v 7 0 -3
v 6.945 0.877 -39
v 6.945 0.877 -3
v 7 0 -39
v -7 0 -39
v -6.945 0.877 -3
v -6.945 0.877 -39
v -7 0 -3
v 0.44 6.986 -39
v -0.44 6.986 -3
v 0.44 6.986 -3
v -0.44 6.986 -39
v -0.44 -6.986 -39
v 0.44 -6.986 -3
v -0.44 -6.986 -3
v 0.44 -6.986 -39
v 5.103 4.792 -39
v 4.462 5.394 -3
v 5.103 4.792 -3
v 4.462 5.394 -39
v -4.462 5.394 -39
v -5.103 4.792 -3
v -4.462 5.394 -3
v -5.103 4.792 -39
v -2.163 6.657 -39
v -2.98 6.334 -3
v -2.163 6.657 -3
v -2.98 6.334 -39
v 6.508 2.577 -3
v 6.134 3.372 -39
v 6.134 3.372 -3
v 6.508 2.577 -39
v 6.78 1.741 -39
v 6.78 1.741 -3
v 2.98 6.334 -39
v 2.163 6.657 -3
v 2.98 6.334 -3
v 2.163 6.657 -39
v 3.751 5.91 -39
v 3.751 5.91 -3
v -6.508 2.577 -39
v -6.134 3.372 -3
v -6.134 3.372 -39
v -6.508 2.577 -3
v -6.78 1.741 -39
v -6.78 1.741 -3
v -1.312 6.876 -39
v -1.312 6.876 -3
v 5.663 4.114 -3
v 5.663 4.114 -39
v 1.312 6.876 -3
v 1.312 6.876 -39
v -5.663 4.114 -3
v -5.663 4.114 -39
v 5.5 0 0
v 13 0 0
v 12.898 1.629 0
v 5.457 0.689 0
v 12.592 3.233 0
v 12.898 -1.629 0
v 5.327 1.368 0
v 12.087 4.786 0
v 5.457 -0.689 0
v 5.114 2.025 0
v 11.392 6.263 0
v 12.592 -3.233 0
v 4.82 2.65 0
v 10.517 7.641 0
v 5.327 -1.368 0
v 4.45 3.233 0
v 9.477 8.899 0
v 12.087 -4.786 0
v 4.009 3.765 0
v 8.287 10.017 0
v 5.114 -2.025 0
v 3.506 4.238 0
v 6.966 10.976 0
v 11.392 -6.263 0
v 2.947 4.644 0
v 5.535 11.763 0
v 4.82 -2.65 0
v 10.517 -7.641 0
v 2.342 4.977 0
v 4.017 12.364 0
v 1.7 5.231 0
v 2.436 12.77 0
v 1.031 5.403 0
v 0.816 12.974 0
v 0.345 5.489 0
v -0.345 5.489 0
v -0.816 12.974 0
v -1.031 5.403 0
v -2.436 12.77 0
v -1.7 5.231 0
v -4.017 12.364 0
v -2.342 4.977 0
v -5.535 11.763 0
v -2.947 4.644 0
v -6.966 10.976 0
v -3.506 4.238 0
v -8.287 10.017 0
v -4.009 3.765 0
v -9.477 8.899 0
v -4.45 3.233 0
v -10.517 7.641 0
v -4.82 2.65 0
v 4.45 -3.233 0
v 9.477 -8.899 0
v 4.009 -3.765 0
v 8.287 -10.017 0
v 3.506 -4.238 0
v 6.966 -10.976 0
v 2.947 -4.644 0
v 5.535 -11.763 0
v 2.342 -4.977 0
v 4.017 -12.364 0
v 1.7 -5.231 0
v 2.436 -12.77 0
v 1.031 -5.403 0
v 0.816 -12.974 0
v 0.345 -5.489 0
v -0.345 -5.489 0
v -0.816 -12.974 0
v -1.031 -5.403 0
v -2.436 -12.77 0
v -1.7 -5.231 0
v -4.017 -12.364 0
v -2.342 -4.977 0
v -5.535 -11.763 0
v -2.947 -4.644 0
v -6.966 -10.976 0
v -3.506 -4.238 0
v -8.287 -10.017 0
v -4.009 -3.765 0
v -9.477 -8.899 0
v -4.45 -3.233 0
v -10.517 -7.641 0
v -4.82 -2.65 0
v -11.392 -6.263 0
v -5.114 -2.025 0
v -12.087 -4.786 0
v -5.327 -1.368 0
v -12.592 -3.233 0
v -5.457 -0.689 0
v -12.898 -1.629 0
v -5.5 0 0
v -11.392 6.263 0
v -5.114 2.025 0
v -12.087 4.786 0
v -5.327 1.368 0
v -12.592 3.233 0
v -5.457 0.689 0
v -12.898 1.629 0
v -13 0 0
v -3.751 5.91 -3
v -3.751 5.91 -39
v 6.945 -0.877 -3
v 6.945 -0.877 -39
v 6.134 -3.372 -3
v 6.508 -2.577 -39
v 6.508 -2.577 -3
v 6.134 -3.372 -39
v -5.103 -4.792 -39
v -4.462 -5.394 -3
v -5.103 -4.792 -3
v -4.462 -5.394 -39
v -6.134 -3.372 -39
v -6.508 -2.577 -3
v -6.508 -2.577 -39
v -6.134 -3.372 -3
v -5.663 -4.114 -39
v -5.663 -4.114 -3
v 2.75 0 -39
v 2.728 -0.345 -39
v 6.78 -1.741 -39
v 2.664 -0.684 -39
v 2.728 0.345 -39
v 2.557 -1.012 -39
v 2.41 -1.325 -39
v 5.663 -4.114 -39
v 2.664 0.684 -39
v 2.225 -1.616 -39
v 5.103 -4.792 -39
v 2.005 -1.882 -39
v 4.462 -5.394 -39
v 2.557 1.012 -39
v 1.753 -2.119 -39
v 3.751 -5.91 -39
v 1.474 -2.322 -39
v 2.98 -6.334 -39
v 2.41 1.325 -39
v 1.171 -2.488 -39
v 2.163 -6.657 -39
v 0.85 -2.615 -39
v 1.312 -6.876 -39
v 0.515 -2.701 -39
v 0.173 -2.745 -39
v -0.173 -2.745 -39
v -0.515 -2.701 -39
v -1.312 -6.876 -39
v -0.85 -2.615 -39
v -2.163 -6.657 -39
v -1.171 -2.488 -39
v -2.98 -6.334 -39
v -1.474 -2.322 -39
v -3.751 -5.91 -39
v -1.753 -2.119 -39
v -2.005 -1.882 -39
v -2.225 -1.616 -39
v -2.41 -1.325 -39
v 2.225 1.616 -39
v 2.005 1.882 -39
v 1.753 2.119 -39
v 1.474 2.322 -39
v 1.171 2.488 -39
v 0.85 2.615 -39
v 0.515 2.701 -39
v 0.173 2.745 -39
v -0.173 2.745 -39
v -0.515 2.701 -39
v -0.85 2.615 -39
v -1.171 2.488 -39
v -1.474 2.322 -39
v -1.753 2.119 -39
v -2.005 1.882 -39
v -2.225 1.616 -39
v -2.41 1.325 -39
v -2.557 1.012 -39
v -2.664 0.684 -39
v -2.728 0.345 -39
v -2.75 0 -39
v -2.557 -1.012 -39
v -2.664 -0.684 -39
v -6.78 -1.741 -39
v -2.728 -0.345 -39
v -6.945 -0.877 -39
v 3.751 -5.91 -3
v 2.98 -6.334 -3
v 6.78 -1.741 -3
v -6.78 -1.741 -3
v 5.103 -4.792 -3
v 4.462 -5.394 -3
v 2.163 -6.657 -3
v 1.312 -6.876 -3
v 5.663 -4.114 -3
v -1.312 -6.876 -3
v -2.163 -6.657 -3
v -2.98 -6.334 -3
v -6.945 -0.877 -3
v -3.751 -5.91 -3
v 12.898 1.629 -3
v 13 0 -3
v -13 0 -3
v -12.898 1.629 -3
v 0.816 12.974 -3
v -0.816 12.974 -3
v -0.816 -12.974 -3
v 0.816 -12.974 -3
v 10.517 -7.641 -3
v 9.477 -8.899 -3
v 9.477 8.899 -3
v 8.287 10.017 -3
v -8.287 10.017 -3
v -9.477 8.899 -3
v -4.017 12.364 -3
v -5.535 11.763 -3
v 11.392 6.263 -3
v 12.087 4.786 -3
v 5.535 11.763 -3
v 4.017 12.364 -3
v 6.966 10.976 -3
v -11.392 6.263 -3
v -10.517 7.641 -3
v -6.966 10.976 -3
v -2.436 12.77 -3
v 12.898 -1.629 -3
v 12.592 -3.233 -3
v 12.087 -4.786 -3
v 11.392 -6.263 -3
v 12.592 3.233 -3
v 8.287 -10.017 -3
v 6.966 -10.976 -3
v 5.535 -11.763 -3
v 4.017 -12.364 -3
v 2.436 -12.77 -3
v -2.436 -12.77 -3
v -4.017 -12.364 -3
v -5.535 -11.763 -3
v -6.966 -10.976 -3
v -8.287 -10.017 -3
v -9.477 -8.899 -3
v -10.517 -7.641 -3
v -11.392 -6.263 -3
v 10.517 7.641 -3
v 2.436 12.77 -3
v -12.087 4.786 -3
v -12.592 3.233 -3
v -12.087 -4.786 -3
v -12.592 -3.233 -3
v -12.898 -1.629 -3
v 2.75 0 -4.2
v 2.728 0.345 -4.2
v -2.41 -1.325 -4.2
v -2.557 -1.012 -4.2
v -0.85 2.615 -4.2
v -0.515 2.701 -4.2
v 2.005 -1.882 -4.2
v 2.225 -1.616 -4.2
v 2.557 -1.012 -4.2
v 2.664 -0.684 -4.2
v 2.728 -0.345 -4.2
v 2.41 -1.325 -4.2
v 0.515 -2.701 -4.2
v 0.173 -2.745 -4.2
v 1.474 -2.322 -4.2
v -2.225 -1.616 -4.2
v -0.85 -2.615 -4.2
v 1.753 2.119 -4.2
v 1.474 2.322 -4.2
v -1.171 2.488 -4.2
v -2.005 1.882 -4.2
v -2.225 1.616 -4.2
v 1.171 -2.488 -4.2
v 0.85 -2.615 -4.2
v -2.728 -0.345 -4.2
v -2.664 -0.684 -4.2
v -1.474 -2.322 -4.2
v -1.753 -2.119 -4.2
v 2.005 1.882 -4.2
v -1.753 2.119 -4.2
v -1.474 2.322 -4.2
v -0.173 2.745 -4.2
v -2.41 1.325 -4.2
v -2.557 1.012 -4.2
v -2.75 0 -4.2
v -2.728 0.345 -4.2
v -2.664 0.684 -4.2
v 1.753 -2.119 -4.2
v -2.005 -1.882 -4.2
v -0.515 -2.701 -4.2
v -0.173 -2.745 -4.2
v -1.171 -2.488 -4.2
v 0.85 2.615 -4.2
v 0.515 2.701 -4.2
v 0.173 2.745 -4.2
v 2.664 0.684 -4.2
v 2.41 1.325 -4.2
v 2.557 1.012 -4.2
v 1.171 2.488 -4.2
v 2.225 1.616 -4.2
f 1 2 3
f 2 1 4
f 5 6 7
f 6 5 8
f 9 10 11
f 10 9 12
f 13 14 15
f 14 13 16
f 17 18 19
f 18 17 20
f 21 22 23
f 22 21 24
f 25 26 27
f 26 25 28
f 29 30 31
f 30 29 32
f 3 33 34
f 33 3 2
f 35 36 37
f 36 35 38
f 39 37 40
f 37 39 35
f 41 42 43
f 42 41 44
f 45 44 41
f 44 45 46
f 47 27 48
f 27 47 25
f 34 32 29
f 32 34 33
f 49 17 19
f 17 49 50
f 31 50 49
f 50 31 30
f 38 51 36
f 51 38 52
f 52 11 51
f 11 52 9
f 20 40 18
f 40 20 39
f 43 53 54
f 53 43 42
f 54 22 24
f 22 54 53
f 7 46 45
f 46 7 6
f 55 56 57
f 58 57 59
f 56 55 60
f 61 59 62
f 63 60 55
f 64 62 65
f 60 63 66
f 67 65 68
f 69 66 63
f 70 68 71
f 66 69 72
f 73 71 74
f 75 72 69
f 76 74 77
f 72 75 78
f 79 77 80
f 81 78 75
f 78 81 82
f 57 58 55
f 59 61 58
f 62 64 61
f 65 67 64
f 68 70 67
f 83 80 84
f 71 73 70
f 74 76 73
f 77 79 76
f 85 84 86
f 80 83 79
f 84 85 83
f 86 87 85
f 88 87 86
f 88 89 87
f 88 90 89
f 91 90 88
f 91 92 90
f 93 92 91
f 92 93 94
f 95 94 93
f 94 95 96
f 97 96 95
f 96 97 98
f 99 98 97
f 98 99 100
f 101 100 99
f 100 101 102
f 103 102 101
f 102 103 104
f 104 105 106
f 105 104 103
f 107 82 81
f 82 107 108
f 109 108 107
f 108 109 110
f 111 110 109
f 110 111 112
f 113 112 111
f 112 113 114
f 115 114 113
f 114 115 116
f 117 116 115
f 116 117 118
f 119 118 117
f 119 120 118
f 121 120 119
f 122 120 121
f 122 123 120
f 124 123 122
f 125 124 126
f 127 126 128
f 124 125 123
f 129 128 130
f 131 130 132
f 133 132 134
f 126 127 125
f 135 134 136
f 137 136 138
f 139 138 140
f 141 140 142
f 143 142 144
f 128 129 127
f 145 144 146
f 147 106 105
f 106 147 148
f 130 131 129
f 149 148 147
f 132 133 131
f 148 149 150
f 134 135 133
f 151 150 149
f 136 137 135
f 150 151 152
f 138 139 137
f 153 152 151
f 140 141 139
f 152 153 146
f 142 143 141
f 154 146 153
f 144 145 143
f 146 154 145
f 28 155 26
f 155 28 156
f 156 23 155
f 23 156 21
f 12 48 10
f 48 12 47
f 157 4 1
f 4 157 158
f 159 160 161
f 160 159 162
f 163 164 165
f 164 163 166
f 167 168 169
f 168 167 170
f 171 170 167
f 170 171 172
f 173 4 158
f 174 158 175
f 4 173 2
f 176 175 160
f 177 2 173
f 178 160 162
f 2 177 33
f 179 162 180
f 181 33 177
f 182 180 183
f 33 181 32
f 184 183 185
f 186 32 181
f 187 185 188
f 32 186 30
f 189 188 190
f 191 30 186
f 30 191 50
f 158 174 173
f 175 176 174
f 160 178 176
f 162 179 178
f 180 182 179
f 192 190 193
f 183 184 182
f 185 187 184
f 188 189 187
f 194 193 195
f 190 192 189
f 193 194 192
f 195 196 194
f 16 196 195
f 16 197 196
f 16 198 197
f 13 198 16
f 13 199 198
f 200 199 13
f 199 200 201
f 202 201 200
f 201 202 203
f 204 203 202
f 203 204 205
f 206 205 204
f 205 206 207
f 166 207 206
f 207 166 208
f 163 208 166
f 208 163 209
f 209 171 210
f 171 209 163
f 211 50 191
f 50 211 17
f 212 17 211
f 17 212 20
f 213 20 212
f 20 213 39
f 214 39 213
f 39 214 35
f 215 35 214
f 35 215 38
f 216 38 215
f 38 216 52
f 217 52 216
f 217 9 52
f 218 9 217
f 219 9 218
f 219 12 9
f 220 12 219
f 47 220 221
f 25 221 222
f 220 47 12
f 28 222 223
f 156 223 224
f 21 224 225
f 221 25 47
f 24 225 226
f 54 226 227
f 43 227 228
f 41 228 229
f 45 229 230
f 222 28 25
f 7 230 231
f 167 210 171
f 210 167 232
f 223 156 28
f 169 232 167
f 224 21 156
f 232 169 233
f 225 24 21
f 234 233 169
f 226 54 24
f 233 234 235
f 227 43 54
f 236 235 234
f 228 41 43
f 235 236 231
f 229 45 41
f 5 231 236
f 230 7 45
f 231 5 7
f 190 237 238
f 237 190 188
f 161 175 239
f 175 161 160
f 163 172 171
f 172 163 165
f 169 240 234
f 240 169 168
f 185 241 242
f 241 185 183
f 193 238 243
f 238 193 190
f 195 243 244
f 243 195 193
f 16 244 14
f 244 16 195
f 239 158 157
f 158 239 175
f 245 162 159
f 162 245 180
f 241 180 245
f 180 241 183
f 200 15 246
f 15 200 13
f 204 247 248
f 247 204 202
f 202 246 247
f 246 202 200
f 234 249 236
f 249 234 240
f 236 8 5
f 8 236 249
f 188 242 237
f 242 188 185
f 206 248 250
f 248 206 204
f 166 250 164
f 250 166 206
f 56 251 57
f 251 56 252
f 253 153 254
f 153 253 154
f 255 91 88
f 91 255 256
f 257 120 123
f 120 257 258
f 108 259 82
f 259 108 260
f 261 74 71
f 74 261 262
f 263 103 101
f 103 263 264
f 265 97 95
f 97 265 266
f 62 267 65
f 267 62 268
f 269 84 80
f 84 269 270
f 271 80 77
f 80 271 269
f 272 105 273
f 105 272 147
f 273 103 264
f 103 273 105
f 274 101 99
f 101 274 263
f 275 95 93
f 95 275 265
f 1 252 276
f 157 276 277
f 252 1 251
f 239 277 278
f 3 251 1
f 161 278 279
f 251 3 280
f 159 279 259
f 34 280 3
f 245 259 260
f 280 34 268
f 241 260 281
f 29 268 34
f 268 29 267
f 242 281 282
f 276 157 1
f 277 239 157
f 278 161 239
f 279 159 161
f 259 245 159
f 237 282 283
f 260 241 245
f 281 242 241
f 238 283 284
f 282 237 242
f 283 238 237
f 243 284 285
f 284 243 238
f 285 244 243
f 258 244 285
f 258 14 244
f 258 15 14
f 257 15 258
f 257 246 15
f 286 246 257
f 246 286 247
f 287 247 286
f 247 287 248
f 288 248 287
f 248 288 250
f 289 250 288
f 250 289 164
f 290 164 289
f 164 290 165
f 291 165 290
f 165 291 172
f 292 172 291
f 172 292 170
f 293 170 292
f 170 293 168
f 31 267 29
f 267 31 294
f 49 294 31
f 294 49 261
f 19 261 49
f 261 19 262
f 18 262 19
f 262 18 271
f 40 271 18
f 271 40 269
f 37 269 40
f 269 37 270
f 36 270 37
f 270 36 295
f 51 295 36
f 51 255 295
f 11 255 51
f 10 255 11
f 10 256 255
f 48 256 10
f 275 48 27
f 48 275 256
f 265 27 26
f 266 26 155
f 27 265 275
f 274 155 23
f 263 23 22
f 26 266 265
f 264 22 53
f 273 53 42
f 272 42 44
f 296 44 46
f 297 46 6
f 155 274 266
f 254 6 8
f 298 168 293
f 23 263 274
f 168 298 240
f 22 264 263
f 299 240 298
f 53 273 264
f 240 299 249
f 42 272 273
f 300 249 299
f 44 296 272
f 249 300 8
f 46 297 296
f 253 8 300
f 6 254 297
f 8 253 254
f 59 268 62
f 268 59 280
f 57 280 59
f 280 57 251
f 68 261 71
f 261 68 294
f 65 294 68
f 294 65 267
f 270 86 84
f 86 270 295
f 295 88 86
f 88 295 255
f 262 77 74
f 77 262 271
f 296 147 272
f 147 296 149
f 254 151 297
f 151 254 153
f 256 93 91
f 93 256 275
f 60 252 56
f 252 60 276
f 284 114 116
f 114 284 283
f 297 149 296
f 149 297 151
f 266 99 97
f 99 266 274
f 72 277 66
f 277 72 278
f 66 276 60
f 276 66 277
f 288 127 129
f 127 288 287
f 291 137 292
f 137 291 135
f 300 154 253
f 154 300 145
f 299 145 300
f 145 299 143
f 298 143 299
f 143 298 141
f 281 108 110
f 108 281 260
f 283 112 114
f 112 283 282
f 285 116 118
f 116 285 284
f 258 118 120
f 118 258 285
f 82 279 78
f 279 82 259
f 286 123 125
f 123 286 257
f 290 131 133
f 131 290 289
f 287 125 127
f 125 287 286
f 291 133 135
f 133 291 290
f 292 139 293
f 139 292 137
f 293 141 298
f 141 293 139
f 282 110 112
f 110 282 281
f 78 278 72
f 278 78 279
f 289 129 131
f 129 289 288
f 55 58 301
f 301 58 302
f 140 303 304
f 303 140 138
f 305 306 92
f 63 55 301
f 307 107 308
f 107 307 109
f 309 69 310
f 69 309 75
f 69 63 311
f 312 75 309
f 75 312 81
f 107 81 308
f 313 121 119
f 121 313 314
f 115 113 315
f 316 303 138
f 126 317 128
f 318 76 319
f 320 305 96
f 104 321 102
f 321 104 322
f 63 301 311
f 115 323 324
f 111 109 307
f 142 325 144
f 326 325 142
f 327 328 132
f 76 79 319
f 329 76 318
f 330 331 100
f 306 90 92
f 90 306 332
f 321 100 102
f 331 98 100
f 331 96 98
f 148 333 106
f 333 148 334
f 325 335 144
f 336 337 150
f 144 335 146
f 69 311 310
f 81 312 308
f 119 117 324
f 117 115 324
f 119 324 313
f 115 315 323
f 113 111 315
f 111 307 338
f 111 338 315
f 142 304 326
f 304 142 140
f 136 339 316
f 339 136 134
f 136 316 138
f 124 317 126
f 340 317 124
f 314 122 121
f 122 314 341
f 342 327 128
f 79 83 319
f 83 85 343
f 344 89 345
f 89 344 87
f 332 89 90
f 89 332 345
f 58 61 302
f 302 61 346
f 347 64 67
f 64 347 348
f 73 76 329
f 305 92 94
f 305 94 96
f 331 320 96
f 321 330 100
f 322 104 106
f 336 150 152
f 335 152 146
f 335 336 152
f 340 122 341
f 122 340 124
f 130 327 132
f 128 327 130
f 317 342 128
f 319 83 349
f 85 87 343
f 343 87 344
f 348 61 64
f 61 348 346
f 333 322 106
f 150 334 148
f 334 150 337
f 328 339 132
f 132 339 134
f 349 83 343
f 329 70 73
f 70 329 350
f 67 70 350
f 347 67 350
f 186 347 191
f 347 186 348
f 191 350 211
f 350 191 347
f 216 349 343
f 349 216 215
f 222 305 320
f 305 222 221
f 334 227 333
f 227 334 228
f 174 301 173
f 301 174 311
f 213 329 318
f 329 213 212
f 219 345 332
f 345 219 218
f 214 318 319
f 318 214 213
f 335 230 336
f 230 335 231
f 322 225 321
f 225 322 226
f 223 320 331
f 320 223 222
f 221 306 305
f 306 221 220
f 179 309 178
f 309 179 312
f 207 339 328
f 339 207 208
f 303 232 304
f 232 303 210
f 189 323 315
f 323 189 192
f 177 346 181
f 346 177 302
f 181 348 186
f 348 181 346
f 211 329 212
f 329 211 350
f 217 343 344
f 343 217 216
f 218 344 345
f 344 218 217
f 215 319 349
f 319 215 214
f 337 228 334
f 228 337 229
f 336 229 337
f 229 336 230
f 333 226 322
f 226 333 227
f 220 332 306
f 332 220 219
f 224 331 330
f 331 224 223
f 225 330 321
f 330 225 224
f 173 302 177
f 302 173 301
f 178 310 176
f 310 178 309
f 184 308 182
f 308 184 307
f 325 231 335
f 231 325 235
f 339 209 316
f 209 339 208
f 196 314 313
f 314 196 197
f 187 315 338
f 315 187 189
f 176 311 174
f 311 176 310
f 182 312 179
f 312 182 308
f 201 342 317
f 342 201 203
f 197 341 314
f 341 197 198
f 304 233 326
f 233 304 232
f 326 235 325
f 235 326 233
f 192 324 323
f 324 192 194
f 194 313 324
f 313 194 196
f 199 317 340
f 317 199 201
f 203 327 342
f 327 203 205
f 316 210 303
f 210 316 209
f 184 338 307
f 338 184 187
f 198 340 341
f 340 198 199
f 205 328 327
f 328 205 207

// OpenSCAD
$fn = 50;


difference() {
	union() {
		translate(v = [0, 0, -39.0000000000]) {
			cylinder(h = 39, r = 7.0000000000);
		}
		translate(v = [0, 0, -3.0000000000]) {
			cylinder(h = 3, r = 13.0000000000);
		}
	}
	union() {
		translate(v = [0, 0, 0]) {
			rotate(a = [0, 0, 0]) {
				difference() {
					union() {
						#translate(v = [0, 0, -39.0000000000]) {
							cylinder(h = 39, r = 2.2500000000);
						}
						#translate(v = [0, 0, -4.2000000000]) {
							cylinder(h = 4.2000000000, r = 7.0000000000, r1 = 2.7500000000, r2 = 5.5000000000);
						}
						#translate(v = [0, 0, -39.0000000000]) {
							cylinder(h = 39, r = 2.7500000000);
						}
						#translate(v = [0, 0, -39.0000000000]) {
							cylinder(h = 39, r = 2.2500000000);
						}
					}
					union();
				}
			}
		}
	}
}
